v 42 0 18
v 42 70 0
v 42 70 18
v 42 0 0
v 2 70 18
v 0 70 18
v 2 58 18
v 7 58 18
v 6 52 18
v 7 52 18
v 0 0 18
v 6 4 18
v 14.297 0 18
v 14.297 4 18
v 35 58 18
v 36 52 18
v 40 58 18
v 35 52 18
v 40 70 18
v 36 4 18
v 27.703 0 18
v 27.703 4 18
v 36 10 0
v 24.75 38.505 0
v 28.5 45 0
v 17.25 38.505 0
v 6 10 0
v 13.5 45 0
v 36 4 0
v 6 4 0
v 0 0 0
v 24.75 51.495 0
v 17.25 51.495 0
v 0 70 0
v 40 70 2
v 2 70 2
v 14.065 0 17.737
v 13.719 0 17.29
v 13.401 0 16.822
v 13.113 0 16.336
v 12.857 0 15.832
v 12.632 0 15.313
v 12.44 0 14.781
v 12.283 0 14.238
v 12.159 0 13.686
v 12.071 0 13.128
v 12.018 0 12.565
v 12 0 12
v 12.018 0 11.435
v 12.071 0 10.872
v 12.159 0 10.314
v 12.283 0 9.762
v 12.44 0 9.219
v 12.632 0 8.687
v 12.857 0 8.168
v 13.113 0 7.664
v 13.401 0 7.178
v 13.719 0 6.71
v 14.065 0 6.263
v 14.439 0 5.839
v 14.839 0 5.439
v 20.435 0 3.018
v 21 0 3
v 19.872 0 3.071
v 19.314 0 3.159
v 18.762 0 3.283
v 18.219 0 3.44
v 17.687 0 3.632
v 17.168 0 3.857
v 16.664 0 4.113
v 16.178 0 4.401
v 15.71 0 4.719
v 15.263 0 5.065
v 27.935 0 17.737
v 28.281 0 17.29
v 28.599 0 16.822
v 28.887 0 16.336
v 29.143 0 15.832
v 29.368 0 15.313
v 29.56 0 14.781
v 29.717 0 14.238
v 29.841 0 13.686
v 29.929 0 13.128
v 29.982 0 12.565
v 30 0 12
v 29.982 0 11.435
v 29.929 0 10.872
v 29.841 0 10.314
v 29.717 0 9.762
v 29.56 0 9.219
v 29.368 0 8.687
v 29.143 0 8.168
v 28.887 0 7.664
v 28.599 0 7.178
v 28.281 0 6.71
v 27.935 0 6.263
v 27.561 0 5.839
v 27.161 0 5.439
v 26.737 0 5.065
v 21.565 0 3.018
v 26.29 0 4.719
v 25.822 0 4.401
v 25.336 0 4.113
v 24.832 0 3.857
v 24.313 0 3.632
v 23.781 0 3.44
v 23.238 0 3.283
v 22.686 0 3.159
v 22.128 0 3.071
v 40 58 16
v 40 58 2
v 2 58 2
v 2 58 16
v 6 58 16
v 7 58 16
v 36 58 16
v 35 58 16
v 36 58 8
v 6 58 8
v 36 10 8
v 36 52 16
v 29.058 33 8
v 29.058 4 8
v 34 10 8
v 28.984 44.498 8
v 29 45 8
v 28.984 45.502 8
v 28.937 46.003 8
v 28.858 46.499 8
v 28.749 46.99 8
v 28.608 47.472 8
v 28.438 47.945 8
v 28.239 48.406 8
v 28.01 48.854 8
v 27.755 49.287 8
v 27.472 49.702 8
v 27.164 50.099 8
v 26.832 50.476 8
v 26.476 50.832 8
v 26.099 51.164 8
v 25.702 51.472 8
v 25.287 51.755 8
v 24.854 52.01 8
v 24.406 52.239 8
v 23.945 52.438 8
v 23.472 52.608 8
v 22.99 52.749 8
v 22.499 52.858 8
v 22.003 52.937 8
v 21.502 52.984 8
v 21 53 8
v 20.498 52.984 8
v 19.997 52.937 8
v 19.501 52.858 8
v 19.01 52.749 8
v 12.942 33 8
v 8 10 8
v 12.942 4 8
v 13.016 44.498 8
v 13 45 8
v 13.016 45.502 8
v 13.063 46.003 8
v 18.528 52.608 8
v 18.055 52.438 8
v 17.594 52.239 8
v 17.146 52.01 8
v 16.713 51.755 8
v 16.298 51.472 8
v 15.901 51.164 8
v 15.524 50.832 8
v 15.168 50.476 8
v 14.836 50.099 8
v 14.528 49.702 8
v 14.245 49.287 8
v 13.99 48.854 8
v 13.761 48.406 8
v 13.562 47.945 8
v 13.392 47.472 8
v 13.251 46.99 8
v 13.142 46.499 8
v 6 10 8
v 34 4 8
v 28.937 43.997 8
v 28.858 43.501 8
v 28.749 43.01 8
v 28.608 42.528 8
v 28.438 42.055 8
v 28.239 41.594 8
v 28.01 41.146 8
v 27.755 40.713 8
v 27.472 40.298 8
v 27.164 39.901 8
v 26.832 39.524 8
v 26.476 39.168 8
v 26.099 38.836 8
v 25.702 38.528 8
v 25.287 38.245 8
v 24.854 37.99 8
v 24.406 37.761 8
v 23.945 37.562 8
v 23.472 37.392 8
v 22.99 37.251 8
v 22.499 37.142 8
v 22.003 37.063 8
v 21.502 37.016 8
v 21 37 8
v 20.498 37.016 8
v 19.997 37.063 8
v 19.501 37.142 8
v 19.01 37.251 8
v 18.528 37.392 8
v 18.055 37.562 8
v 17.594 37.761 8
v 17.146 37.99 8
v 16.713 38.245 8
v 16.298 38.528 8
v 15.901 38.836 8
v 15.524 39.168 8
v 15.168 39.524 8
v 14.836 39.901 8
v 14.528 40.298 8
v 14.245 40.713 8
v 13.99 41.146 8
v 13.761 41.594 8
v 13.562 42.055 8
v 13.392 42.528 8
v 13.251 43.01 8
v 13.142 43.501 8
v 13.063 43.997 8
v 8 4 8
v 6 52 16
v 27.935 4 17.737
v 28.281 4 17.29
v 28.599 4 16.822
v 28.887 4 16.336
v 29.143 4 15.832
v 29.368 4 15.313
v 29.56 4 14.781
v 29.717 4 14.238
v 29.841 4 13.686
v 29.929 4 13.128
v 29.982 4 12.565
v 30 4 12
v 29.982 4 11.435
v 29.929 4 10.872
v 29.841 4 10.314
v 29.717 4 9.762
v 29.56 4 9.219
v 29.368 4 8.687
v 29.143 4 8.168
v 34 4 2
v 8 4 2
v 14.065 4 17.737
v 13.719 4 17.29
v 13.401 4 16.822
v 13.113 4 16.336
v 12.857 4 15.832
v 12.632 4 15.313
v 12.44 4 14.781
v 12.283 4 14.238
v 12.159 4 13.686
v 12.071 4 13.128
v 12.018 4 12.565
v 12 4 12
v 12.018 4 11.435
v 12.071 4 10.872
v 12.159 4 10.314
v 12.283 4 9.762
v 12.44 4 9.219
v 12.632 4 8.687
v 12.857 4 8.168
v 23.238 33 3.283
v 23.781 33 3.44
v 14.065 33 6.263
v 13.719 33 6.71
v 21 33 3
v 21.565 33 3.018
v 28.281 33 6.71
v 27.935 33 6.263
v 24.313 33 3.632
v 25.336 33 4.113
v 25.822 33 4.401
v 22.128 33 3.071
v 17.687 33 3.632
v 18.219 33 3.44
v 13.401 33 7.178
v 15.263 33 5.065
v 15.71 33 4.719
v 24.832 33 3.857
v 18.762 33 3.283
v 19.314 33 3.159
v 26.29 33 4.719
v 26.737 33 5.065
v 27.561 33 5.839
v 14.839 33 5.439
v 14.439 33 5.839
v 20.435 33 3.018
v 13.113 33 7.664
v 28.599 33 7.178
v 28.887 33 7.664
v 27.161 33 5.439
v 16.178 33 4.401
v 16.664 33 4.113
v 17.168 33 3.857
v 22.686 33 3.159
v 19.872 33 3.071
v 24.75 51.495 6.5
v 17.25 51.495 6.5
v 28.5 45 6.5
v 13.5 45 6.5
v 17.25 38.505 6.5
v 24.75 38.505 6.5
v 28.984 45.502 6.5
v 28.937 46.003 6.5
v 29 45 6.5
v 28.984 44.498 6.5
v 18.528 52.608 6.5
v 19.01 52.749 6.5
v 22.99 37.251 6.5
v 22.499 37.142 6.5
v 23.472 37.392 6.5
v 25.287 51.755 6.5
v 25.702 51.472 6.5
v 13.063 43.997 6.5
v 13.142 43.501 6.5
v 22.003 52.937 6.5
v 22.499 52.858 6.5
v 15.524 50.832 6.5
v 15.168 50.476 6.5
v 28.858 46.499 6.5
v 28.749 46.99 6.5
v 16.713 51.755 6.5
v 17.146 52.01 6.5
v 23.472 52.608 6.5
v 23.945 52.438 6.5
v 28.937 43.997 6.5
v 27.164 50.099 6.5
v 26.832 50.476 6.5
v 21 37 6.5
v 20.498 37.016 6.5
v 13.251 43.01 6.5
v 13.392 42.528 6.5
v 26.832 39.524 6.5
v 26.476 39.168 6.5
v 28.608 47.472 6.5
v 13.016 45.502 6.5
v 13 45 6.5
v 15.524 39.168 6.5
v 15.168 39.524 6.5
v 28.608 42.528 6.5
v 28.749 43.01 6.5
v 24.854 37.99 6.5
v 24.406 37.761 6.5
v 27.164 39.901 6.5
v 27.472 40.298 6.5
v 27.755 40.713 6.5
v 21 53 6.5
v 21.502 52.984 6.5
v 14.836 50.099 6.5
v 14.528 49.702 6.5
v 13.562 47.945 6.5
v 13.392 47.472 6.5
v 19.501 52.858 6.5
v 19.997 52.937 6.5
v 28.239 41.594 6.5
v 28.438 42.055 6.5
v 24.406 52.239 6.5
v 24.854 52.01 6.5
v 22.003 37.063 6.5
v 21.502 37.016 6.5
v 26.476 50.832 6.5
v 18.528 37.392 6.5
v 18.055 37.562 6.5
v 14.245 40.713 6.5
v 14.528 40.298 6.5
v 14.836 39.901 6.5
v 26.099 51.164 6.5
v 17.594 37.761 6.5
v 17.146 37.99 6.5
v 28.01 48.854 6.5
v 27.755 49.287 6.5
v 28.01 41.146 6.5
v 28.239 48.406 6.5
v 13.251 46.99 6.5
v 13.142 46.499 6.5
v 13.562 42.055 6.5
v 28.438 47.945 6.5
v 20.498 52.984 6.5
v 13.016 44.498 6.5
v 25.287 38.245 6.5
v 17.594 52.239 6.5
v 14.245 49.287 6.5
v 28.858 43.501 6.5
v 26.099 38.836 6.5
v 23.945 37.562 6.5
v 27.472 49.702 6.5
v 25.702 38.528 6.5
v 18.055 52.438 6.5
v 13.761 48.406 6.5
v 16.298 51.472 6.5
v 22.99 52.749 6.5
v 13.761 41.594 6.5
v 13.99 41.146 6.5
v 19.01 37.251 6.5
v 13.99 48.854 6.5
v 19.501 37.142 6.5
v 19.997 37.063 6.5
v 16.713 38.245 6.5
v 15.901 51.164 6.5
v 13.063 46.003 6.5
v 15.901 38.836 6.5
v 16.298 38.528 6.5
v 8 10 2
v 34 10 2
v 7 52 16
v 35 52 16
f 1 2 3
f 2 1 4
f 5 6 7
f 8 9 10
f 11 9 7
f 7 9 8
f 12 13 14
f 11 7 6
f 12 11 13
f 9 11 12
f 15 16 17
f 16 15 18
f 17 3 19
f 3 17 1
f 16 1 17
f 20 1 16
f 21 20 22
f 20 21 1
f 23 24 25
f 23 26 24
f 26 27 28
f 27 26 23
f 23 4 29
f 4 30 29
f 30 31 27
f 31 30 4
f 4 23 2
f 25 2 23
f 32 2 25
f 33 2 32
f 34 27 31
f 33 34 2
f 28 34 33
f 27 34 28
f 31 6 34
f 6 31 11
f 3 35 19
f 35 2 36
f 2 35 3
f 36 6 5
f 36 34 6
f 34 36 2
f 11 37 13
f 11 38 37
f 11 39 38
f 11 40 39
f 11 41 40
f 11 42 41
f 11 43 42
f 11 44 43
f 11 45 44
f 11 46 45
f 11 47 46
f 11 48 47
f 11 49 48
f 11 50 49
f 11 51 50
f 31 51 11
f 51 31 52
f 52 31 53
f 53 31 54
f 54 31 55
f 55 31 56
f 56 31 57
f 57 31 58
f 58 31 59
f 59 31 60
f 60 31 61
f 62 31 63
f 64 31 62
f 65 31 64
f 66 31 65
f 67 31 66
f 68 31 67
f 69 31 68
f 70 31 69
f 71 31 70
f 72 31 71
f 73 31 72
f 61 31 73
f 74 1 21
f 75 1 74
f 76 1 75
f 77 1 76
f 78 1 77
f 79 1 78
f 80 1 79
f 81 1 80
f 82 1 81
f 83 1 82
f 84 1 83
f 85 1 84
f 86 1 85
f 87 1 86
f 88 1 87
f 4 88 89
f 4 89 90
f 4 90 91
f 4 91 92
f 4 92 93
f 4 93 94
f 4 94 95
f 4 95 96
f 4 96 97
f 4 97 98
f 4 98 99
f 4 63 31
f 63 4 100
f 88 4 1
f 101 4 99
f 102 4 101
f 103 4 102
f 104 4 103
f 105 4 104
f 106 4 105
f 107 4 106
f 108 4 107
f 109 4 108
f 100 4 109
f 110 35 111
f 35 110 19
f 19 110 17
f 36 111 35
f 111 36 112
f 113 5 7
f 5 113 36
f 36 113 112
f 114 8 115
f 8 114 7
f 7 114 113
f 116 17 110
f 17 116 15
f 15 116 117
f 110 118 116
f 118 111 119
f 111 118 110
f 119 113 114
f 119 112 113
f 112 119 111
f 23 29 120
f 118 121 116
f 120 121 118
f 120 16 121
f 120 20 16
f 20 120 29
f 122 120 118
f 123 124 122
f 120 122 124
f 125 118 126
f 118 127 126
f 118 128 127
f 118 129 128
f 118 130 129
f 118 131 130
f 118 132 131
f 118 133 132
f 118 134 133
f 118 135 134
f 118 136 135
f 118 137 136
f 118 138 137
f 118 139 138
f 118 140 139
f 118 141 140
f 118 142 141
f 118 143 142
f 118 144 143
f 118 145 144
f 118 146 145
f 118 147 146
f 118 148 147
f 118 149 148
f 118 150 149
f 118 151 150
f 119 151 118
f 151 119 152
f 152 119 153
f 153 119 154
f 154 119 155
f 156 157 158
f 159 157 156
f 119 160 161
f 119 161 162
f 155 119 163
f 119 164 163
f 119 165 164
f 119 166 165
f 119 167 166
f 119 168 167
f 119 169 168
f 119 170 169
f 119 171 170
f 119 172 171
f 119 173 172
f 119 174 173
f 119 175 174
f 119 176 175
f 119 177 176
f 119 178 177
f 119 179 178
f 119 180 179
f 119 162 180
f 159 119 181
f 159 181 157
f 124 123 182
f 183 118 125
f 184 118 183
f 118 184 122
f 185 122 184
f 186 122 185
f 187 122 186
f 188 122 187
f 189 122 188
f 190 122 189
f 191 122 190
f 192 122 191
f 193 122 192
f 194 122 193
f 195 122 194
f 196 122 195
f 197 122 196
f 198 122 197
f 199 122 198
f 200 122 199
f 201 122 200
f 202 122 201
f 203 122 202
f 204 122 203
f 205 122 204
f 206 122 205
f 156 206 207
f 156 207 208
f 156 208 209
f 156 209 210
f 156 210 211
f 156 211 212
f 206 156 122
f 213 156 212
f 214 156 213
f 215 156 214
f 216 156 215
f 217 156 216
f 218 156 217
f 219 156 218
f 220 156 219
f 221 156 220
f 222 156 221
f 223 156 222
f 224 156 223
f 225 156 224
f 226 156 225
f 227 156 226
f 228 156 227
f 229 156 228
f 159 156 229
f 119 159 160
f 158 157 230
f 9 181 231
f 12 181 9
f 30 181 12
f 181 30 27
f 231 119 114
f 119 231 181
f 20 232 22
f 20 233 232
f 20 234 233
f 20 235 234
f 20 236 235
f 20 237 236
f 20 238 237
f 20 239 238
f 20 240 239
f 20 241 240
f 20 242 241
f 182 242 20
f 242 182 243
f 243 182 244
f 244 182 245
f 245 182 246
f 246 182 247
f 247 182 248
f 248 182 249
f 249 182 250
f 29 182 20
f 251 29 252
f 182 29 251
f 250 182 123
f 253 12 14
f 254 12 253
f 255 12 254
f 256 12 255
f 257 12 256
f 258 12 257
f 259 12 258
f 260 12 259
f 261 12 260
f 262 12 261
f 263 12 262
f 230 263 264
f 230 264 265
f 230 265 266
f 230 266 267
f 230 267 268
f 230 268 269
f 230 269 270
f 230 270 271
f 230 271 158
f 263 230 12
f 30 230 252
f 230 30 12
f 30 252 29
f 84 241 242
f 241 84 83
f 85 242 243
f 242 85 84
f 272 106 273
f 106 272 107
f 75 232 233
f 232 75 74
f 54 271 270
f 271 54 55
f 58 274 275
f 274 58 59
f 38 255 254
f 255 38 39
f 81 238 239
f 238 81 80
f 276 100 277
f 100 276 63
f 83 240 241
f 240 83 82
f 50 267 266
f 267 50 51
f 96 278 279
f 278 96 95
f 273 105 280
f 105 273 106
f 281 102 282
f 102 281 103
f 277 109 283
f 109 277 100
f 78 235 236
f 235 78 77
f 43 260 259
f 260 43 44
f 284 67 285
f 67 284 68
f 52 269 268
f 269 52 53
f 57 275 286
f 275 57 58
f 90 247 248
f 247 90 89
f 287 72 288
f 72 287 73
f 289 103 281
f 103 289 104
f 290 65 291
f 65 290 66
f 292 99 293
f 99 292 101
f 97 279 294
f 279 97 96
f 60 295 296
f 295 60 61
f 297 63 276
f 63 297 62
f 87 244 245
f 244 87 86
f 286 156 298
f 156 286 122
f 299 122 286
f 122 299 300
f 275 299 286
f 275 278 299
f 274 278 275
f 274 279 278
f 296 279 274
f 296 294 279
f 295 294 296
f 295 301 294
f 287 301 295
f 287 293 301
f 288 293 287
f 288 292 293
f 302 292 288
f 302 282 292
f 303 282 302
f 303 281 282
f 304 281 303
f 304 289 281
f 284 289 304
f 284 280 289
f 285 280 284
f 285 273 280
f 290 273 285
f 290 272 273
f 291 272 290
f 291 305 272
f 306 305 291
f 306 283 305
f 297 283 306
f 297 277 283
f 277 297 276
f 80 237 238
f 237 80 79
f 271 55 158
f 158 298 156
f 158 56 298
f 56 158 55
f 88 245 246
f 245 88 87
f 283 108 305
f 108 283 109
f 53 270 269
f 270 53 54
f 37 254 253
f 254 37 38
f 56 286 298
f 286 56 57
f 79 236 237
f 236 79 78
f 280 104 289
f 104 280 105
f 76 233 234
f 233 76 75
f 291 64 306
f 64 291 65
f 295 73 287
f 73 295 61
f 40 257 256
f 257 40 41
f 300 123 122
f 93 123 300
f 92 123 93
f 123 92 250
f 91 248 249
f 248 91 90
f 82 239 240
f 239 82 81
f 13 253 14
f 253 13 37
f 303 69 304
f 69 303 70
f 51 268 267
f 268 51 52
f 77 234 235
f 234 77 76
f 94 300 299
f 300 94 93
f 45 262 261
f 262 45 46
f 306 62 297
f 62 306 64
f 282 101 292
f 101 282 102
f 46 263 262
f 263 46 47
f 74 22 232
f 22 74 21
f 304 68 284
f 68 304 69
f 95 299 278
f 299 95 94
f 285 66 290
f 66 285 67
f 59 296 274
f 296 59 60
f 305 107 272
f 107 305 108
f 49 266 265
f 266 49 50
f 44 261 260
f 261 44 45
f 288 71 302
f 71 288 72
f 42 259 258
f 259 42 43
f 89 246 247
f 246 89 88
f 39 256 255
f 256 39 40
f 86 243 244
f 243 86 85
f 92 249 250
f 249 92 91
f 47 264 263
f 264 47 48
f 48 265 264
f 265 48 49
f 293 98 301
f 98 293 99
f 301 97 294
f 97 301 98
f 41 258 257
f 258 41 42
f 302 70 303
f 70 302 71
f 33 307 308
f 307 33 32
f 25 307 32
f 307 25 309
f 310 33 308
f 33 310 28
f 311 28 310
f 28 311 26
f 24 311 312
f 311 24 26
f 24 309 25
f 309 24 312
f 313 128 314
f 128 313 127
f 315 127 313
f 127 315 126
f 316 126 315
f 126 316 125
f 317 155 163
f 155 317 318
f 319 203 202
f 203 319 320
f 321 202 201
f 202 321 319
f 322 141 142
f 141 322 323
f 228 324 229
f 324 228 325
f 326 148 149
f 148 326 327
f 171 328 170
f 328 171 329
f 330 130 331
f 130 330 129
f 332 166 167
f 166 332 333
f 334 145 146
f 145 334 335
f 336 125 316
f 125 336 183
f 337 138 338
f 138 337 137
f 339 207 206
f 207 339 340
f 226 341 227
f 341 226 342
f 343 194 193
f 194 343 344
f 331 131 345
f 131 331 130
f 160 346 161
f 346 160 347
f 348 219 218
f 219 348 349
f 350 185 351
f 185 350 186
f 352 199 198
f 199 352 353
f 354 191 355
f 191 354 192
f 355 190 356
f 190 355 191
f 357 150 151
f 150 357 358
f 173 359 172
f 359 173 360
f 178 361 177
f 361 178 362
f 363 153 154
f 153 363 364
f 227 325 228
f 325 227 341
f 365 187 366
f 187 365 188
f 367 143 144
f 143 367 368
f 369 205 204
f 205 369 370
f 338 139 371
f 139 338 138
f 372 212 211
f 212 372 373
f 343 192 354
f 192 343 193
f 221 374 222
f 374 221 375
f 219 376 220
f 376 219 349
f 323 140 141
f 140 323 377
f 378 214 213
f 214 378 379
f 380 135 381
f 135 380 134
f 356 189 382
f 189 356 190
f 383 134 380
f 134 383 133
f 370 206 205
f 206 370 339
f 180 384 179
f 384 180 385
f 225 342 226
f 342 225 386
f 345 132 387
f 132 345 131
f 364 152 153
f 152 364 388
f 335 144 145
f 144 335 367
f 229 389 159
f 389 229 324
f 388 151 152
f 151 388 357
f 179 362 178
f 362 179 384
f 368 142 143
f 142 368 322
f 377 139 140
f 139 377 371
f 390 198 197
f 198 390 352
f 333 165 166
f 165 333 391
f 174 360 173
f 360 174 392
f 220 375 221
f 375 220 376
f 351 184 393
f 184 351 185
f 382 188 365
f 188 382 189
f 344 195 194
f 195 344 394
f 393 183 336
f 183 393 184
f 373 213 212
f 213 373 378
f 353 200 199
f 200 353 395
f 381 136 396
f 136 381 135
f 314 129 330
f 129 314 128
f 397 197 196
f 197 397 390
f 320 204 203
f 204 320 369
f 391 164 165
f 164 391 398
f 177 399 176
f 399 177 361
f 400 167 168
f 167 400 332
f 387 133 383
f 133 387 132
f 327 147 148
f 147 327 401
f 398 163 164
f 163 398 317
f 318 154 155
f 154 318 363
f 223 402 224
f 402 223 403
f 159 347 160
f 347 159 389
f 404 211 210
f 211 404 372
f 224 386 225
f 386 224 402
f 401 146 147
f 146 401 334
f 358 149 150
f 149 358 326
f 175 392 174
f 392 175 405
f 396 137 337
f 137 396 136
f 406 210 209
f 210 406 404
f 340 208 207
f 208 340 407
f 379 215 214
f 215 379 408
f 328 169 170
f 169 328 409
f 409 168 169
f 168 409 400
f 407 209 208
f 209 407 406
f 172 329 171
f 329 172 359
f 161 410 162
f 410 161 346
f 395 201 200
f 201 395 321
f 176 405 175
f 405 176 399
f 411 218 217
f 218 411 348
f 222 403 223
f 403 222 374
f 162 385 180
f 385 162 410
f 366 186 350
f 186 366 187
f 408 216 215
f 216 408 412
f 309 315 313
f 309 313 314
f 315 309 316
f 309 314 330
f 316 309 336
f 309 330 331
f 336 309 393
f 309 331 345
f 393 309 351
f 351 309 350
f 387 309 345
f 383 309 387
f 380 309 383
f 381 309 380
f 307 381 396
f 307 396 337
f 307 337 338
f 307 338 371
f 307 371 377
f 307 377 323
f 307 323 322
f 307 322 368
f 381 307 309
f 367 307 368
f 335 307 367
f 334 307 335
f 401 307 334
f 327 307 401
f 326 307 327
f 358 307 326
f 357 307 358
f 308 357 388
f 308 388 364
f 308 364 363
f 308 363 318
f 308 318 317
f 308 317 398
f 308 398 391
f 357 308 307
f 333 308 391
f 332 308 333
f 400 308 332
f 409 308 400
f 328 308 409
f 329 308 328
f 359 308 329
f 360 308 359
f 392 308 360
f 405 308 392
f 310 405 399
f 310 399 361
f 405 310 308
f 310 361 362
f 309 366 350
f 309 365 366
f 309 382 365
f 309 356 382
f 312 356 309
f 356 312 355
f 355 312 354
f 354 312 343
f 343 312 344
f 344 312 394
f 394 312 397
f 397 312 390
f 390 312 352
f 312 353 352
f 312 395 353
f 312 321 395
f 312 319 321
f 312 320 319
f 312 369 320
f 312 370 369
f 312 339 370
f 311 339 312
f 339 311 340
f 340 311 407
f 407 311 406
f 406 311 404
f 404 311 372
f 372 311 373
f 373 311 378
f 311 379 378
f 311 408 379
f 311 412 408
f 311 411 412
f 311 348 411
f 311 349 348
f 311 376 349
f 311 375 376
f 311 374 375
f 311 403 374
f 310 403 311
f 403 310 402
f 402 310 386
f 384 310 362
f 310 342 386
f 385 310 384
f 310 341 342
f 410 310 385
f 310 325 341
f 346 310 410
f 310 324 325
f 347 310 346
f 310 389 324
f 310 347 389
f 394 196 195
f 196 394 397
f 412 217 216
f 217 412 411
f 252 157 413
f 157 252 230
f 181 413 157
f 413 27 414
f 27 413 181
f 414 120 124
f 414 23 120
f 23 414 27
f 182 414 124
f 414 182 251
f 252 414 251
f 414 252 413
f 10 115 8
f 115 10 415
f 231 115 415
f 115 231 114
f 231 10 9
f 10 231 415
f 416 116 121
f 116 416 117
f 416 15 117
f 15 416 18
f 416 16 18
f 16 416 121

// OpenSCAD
/**

Terminal covers for Victron Lynx Power In

@idnorton

Licenced as Creative Commons Attribution Non Commercial 3.0
See https://creativecommons.org/licenses/by-nc/3.0/

Specifically you may not sell the design or products using the design.
You're welcome to use the design to build things for your own use :)

Perimiters: 6
Seam position: Random
Infill: 30%

**/

busbar_x = 30;
busbar_y = 25;
busbar_z = 8;
busbar_hole = 8.8;
busbar_hole_offset = 13.5;

insulator_x = 38;
insulator_y = 12;
insulator_z = 17;

insulator_groove_x = 34;
insulator_groove_y = 3;
insulator_groove_z = 12;
insulator_groove_inset = 2;

case_base = 8;
case_thickness = 2;
case_x = insulator_x + (2*case_thickness);
case_y = 70;
case_z = 10;
//case_z = 3;

bolt_head = 15;
bolt_washer = 16;

cabletie_x = 2;
cabletie_y = 6;

cable_entry = 18;

difference() {
    // Main external body
    cube([case_x, case_y, case_z + case_base]);
    
    // Insulator gap
    translate([case_thickness, case_y - insulator_y, 2]) {
        cube([insulator_x, insulator_y, insulator_z]);
    }
    
    // Main body opening for busbar
    translate([(case_x - busbar_x)/2, case_thickness*2, case_base]) {
        cube([busbar_x, case_y, busbar_z*2]);
    }
    
    // Cable entry
    translate([case_x/2, 0, 12]) {
        rotate([90, 0, 0]) { cylinder(h = 66, d = cable_entry, center = true, $fn=100);
    }}
    
    // Bolt head
    translate([case_x/2, case_y - 25, case_base/2]) {
        cylinder(h = case_thickness*6, d = bolt_head, center = true, $fn=6);
    }
    
    // Washer
    translate([case_x/2, case_y - 25, case_base - 0.5]) {
        cylinder(h = 2, d = bolt_washer, center = true, $fn=100);
    }
    
    // Top cable tie hole
    translate([case_thickness*3, case_thickness* 2, 0]) {
        cube([cabletie_x, cabletie_y, case_base + case_thickness]);
    }
    
    // Bottom cable tie hole
    translate([case_x - (case_thickness*3) - cabletie_x, case_thickness* 2, 0]) {
        cube([cabletie_x, cabletie_y, case_base + case_thickness]);
    }
    
    // Cable tie channel on bottom
    translate([case_thickness*3, case_thickness* 2, 0]) {
        cube([case_x - (case_thickness*6), cabletie_y, cabletie_x]);
    }    
}

// Tabs above busbar left
translate([0, case_y - insulator_y - 6, (case_z+case_base) - case_thickness]) {
    cube([7, 6, case_thickness]);
}

// Tabs above busbar right
translate([case_x - 7, case_y - insulator_y - 6, (case_z+case_base) - case_thickness]) {
    cube([7, 6, case_thickness]);
}    
